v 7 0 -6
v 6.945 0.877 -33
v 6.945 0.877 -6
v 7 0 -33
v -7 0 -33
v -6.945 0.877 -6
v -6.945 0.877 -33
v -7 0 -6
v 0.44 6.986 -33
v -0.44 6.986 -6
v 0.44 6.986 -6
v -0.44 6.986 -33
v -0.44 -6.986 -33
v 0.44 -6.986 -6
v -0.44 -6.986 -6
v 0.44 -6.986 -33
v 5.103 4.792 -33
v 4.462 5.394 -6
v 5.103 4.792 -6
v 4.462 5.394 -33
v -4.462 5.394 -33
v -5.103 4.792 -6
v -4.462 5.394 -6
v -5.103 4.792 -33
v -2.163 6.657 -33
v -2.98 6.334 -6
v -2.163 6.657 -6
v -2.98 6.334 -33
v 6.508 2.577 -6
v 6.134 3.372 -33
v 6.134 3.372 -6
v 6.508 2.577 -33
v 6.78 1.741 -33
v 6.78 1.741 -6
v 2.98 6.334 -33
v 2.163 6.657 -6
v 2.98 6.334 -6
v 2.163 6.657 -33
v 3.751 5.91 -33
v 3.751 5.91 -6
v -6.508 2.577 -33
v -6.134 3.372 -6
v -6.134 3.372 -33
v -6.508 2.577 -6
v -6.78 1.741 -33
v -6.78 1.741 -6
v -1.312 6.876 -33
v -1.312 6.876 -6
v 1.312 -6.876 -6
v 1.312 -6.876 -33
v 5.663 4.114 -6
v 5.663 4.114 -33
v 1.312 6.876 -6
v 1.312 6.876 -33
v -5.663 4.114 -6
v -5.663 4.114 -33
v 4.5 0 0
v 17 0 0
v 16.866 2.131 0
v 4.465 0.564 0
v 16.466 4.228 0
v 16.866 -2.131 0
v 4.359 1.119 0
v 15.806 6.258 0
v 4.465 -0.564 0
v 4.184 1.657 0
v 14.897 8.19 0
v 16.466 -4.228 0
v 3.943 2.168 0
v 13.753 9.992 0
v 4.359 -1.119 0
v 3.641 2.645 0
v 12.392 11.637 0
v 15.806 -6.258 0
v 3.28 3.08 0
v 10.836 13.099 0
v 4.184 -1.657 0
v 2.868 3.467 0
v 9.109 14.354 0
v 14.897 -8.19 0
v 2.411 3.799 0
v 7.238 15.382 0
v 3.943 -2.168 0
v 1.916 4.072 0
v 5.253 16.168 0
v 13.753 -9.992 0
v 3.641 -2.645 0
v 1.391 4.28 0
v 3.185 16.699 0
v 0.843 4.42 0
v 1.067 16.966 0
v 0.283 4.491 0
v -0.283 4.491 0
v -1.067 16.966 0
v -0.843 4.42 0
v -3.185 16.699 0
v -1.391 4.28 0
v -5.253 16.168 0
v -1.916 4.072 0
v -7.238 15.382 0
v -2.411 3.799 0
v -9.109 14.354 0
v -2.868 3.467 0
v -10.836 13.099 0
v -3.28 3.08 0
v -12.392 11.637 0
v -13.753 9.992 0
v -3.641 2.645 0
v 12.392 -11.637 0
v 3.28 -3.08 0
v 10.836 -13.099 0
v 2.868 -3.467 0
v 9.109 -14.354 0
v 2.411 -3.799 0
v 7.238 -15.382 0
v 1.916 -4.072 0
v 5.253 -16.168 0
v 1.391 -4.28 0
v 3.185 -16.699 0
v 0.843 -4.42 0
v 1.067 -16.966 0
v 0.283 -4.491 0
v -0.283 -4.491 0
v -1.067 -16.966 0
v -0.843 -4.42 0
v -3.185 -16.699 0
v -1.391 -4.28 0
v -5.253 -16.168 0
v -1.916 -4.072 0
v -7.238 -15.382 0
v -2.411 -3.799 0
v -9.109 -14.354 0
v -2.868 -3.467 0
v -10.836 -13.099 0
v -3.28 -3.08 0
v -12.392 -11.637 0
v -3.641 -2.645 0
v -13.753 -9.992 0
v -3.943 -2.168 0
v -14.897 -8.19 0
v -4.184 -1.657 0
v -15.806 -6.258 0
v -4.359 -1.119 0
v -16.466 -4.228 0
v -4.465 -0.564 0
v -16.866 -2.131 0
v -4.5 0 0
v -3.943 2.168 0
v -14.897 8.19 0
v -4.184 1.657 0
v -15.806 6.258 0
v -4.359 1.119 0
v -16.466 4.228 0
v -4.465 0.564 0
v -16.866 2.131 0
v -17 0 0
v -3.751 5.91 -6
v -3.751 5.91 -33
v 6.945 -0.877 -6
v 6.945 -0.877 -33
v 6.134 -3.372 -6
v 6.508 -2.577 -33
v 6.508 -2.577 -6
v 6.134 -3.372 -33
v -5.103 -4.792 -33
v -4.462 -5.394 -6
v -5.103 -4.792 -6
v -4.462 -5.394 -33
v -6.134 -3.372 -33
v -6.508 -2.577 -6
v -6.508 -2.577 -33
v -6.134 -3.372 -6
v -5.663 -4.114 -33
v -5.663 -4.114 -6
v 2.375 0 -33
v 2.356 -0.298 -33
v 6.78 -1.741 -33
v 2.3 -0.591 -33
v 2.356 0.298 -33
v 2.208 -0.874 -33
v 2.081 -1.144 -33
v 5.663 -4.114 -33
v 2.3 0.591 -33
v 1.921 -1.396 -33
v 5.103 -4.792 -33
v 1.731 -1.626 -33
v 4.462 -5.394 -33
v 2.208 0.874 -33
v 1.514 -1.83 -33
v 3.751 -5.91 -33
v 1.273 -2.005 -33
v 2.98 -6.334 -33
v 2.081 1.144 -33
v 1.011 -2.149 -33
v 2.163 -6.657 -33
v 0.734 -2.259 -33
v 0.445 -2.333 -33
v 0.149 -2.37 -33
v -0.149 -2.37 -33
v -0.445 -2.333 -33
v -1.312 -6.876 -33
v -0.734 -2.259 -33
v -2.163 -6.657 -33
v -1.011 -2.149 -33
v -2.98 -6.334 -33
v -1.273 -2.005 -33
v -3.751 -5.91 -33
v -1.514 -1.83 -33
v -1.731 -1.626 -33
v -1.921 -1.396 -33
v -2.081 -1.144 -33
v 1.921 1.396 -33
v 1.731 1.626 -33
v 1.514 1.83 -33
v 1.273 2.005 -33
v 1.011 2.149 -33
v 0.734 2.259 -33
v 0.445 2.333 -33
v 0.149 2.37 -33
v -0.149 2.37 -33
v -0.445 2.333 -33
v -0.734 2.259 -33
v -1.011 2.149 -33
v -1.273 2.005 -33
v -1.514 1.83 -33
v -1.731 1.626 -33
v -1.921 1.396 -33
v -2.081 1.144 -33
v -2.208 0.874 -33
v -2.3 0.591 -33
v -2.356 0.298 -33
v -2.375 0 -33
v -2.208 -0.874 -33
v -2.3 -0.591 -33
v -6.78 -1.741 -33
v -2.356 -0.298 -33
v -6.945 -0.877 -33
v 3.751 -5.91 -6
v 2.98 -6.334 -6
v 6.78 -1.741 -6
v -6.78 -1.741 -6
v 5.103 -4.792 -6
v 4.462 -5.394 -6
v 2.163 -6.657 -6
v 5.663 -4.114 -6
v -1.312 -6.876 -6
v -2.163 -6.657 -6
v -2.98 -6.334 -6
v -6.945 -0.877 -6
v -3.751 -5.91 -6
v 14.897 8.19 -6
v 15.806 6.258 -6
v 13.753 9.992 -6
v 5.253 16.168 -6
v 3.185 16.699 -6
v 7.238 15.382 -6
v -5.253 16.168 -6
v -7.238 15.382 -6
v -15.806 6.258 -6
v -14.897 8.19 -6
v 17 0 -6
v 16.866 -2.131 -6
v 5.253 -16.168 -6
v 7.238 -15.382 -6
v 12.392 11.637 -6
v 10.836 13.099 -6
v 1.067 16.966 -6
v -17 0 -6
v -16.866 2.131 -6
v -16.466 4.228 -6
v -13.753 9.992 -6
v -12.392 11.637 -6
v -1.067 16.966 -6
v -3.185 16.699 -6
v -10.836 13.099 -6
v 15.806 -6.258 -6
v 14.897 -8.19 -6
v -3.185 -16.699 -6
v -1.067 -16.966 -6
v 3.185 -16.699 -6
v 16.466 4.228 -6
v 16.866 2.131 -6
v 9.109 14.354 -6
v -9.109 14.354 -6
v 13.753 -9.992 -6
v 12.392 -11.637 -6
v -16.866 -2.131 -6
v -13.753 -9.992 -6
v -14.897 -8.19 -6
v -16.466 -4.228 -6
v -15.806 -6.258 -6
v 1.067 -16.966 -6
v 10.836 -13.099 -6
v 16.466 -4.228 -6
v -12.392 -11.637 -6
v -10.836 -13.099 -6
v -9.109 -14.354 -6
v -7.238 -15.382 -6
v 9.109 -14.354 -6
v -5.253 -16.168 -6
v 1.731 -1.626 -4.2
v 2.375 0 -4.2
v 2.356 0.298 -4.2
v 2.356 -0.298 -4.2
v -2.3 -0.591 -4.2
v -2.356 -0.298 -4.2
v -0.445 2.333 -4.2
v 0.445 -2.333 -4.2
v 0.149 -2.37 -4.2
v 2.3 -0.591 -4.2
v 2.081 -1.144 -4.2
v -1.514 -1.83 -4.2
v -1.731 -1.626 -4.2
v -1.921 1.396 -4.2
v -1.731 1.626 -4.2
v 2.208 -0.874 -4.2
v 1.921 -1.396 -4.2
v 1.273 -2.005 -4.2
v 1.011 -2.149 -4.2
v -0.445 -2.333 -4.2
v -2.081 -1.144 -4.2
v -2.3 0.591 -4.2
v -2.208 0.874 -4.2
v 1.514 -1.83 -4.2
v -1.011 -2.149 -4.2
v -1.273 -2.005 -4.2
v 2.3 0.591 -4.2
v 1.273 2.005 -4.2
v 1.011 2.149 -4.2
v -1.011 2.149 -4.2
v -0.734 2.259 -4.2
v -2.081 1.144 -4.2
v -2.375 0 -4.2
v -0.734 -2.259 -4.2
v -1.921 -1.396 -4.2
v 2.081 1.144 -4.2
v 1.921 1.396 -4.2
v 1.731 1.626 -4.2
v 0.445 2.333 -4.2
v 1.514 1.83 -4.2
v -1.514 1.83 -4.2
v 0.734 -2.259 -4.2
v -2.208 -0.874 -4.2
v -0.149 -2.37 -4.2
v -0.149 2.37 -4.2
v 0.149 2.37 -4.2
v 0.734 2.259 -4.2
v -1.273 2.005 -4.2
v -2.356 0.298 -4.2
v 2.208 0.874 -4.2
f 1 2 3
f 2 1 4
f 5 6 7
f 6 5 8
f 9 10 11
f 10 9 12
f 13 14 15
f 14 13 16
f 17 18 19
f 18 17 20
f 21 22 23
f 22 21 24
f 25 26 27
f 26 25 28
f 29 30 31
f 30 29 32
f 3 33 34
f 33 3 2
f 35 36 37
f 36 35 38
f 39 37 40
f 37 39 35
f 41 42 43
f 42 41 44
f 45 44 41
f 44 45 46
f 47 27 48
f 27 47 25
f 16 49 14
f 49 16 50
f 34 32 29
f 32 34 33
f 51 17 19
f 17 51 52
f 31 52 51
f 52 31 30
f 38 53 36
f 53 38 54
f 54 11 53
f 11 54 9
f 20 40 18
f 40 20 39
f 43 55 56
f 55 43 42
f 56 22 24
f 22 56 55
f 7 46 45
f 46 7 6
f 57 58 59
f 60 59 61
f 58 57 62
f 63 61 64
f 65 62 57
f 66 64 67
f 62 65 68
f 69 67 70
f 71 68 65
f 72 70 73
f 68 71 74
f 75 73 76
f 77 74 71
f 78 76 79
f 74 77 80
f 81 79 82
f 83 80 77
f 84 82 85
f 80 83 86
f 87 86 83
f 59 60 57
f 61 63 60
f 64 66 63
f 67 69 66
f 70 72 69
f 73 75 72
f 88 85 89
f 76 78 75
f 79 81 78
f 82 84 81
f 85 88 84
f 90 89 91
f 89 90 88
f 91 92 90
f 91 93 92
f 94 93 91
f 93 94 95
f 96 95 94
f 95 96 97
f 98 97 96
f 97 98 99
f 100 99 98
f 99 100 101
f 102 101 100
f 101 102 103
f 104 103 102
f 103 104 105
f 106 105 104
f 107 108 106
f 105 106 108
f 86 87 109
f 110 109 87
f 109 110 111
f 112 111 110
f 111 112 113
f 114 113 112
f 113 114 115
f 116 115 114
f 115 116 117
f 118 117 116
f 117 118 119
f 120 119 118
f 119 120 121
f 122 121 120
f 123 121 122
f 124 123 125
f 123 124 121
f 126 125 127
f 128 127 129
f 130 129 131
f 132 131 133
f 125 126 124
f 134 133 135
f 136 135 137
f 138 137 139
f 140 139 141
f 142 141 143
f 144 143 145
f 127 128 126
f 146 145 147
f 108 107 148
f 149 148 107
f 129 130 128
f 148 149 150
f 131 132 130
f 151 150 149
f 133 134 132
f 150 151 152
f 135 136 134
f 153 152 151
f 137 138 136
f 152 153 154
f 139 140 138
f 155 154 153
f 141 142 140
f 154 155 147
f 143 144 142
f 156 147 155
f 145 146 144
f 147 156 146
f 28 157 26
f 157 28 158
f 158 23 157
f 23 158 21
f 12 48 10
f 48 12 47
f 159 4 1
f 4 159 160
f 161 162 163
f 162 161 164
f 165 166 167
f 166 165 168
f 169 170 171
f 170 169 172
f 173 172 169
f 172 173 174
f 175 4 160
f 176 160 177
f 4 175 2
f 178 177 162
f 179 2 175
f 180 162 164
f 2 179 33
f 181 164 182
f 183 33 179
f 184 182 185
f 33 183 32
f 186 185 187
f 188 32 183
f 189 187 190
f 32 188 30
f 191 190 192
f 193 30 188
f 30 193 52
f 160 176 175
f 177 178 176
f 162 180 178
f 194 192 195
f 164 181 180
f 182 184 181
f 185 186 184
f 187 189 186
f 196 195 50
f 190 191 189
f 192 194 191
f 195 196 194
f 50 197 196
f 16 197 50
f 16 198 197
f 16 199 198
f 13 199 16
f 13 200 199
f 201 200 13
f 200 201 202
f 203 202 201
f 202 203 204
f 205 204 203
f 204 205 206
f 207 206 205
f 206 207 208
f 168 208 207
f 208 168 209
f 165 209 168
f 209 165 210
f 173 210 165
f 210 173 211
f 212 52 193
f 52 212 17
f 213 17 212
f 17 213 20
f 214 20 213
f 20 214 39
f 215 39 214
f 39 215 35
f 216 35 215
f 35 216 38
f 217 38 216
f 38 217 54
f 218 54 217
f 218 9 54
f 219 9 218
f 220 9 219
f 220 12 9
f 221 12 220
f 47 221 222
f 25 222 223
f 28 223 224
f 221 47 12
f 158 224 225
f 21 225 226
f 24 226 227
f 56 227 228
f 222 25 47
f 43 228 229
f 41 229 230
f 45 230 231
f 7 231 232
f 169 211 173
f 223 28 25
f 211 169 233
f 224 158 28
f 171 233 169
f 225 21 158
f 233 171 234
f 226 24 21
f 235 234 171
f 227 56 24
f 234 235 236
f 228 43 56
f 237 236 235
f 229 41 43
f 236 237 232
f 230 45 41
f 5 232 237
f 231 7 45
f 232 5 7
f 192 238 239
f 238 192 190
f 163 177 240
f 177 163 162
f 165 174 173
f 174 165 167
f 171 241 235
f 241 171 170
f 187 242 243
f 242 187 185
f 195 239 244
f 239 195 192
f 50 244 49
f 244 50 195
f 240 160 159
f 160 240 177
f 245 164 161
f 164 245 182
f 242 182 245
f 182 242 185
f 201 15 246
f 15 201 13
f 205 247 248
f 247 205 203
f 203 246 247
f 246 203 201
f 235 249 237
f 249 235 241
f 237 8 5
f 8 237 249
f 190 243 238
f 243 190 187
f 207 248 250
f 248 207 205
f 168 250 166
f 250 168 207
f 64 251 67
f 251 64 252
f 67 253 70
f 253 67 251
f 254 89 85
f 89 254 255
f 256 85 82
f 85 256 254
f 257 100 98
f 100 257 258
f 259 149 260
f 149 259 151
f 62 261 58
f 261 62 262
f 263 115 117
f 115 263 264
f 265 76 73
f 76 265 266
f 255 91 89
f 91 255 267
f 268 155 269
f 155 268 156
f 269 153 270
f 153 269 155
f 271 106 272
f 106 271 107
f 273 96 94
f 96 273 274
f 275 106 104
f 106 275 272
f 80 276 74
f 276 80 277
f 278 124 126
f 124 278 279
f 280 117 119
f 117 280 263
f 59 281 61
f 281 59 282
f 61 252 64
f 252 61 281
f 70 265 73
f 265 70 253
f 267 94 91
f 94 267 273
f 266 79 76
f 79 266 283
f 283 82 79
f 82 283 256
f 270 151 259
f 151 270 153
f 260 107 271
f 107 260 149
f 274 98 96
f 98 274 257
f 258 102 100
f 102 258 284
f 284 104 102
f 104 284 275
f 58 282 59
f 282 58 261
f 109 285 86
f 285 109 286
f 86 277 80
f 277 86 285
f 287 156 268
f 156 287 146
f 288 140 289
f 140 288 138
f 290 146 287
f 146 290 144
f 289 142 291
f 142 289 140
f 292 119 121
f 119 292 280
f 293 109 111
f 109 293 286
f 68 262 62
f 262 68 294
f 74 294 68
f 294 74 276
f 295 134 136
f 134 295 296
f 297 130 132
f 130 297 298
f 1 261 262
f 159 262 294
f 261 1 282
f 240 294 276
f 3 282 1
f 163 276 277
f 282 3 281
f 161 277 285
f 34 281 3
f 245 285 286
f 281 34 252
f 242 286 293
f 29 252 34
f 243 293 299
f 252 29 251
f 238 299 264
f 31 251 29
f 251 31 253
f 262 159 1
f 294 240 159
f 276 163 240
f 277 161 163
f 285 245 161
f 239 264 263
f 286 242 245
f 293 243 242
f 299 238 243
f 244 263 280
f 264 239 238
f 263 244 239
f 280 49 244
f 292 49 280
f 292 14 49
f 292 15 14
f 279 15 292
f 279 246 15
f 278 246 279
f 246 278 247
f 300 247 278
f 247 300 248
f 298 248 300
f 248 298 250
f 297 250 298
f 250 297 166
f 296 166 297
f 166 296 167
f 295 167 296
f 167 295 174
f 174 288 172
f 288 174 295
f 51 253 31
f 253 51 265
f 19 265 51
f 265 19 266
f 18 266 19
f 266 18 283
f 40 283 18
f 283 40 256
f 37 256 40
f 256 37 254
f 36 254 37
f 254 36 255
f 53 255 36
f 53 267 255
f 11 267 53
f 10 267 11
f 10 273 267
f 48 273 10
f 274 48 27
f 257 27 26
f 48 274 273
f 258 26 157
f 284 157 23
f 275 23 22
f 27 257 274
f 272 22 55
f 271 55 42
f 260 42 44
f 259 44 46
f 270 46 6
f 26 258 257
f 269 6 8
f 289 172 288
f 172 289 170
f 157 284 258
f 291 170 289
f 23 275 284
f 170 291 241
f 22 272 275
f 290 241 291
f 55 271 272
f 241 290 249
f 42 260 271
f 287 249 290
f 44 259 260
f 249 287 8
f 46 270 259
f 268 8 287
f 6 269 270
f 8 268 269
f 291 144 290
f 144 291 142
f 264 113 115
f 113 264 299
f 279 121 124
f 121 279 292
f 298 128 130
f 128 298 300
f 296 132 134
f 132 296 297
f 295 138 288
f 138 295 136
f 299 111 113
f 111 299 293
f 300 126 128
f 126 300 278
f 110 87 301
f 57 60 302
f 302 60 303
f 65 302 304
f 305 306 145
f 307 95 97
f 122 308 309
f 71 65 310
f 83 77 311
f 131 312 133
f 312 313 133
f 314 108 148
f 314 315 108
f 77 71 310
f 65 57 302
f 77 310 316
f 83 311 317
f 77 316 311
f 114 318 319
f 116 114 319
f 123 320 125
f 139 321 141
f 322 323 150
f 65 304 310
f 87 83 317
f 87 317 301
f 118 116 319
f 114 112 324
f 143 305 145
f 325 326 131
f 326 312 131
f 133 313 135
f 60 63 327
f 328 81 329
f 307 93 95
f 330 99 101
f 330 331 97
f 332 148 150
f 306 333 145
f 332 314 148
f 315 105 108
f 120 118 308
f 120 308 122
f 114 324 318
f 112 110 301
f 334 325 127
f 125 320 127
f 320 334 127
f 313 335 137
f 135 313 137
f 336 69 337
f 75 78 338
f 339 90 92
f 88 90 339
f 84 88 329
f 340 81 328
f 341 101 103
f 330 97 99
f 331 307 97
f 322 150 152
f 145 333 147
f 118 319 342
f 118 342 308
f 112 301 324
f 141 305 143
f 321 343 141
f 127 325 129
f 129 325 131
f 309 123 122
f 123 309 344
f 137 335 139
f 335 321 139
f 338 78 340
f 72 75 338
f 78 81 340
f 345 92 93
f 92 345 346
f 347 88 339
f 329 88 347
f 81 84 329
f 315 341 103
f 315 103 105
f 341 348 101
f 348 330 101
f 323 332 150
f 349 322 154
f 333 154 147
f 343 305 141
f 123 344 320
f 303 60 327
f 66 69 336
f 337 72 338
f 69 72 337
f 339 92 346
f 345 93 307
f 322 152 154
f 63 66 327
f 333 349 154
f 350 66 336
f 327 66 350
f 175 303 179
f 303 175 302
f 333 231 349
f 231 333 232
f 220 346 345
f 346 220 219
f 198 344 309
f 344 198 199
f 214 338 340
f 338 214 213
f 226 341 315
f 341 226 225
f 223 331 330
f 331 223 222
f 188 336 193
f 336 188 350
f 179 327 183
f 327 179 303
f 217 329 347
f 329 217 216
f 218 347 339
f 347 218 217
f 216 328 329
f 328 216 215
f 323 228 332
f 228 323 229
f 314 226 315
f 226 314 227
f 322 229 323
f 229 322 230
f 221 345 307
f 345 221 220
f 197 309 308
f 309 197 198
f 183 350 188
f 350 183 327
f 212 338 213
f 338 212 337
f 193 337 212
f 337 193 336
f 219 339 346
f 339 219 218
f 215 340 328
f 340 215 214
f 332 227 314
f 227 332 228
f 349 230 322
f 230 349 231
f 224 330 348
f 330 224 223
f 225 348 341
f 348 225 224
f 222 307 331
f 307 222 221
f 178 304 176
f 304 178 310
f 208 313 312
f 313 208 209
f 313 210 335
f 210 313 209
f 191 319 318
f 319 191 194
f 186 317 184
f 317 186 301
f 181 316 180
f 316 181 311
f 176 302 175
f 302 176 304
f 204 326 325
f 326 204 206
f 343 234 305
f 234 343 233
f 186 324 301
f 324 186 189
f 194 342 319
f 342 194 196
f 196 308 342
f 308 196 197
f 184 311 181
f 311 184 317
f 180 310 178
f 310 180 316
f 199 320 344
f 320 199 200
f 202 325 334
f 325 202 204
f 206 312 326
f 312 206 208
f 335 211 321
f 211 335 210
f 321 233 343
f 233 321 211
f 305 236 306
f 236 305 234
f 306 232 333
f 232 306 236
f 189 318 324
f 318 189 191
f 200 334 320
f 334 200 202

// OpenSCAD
$fn = 50;


difference() {
	union() {
		translate(v = [0, 0, -33.0000000000]) {
			cylinder(h = 33, r = 7.0000000000);
		}
		translate(v = [0, 0, -6.0000000000]) {
			cylinder(h = 6, r = 17.0000000000);
		}
	}
	union() {
		translate(v = [0, 0, 0]) {
			rotate(a = [0, 0, 0]) {
				difference() {
					union() {
						#translate(v = [0, 0, -33.0000000000]) {
							cylinder(h = 33, r = 2.2500000000);
						}
						#translate(v = [0, 0, -4.2000000000]) {
							cylinder(h = 4.2000000000, r1 = 2.3750000000, r2 = 4.5000000000);
						}
						#translate(v = [0, 0, -33.0000000000]) {
							cylinder(h = 33, r = 2.3750000000);
						}
						#translate(v = [0, 0, -33.0000000000]) {
							cylinder(h = 33, r = 2.2500000000);
						}
					}
					union();
				}
			}
		}
	}
}
